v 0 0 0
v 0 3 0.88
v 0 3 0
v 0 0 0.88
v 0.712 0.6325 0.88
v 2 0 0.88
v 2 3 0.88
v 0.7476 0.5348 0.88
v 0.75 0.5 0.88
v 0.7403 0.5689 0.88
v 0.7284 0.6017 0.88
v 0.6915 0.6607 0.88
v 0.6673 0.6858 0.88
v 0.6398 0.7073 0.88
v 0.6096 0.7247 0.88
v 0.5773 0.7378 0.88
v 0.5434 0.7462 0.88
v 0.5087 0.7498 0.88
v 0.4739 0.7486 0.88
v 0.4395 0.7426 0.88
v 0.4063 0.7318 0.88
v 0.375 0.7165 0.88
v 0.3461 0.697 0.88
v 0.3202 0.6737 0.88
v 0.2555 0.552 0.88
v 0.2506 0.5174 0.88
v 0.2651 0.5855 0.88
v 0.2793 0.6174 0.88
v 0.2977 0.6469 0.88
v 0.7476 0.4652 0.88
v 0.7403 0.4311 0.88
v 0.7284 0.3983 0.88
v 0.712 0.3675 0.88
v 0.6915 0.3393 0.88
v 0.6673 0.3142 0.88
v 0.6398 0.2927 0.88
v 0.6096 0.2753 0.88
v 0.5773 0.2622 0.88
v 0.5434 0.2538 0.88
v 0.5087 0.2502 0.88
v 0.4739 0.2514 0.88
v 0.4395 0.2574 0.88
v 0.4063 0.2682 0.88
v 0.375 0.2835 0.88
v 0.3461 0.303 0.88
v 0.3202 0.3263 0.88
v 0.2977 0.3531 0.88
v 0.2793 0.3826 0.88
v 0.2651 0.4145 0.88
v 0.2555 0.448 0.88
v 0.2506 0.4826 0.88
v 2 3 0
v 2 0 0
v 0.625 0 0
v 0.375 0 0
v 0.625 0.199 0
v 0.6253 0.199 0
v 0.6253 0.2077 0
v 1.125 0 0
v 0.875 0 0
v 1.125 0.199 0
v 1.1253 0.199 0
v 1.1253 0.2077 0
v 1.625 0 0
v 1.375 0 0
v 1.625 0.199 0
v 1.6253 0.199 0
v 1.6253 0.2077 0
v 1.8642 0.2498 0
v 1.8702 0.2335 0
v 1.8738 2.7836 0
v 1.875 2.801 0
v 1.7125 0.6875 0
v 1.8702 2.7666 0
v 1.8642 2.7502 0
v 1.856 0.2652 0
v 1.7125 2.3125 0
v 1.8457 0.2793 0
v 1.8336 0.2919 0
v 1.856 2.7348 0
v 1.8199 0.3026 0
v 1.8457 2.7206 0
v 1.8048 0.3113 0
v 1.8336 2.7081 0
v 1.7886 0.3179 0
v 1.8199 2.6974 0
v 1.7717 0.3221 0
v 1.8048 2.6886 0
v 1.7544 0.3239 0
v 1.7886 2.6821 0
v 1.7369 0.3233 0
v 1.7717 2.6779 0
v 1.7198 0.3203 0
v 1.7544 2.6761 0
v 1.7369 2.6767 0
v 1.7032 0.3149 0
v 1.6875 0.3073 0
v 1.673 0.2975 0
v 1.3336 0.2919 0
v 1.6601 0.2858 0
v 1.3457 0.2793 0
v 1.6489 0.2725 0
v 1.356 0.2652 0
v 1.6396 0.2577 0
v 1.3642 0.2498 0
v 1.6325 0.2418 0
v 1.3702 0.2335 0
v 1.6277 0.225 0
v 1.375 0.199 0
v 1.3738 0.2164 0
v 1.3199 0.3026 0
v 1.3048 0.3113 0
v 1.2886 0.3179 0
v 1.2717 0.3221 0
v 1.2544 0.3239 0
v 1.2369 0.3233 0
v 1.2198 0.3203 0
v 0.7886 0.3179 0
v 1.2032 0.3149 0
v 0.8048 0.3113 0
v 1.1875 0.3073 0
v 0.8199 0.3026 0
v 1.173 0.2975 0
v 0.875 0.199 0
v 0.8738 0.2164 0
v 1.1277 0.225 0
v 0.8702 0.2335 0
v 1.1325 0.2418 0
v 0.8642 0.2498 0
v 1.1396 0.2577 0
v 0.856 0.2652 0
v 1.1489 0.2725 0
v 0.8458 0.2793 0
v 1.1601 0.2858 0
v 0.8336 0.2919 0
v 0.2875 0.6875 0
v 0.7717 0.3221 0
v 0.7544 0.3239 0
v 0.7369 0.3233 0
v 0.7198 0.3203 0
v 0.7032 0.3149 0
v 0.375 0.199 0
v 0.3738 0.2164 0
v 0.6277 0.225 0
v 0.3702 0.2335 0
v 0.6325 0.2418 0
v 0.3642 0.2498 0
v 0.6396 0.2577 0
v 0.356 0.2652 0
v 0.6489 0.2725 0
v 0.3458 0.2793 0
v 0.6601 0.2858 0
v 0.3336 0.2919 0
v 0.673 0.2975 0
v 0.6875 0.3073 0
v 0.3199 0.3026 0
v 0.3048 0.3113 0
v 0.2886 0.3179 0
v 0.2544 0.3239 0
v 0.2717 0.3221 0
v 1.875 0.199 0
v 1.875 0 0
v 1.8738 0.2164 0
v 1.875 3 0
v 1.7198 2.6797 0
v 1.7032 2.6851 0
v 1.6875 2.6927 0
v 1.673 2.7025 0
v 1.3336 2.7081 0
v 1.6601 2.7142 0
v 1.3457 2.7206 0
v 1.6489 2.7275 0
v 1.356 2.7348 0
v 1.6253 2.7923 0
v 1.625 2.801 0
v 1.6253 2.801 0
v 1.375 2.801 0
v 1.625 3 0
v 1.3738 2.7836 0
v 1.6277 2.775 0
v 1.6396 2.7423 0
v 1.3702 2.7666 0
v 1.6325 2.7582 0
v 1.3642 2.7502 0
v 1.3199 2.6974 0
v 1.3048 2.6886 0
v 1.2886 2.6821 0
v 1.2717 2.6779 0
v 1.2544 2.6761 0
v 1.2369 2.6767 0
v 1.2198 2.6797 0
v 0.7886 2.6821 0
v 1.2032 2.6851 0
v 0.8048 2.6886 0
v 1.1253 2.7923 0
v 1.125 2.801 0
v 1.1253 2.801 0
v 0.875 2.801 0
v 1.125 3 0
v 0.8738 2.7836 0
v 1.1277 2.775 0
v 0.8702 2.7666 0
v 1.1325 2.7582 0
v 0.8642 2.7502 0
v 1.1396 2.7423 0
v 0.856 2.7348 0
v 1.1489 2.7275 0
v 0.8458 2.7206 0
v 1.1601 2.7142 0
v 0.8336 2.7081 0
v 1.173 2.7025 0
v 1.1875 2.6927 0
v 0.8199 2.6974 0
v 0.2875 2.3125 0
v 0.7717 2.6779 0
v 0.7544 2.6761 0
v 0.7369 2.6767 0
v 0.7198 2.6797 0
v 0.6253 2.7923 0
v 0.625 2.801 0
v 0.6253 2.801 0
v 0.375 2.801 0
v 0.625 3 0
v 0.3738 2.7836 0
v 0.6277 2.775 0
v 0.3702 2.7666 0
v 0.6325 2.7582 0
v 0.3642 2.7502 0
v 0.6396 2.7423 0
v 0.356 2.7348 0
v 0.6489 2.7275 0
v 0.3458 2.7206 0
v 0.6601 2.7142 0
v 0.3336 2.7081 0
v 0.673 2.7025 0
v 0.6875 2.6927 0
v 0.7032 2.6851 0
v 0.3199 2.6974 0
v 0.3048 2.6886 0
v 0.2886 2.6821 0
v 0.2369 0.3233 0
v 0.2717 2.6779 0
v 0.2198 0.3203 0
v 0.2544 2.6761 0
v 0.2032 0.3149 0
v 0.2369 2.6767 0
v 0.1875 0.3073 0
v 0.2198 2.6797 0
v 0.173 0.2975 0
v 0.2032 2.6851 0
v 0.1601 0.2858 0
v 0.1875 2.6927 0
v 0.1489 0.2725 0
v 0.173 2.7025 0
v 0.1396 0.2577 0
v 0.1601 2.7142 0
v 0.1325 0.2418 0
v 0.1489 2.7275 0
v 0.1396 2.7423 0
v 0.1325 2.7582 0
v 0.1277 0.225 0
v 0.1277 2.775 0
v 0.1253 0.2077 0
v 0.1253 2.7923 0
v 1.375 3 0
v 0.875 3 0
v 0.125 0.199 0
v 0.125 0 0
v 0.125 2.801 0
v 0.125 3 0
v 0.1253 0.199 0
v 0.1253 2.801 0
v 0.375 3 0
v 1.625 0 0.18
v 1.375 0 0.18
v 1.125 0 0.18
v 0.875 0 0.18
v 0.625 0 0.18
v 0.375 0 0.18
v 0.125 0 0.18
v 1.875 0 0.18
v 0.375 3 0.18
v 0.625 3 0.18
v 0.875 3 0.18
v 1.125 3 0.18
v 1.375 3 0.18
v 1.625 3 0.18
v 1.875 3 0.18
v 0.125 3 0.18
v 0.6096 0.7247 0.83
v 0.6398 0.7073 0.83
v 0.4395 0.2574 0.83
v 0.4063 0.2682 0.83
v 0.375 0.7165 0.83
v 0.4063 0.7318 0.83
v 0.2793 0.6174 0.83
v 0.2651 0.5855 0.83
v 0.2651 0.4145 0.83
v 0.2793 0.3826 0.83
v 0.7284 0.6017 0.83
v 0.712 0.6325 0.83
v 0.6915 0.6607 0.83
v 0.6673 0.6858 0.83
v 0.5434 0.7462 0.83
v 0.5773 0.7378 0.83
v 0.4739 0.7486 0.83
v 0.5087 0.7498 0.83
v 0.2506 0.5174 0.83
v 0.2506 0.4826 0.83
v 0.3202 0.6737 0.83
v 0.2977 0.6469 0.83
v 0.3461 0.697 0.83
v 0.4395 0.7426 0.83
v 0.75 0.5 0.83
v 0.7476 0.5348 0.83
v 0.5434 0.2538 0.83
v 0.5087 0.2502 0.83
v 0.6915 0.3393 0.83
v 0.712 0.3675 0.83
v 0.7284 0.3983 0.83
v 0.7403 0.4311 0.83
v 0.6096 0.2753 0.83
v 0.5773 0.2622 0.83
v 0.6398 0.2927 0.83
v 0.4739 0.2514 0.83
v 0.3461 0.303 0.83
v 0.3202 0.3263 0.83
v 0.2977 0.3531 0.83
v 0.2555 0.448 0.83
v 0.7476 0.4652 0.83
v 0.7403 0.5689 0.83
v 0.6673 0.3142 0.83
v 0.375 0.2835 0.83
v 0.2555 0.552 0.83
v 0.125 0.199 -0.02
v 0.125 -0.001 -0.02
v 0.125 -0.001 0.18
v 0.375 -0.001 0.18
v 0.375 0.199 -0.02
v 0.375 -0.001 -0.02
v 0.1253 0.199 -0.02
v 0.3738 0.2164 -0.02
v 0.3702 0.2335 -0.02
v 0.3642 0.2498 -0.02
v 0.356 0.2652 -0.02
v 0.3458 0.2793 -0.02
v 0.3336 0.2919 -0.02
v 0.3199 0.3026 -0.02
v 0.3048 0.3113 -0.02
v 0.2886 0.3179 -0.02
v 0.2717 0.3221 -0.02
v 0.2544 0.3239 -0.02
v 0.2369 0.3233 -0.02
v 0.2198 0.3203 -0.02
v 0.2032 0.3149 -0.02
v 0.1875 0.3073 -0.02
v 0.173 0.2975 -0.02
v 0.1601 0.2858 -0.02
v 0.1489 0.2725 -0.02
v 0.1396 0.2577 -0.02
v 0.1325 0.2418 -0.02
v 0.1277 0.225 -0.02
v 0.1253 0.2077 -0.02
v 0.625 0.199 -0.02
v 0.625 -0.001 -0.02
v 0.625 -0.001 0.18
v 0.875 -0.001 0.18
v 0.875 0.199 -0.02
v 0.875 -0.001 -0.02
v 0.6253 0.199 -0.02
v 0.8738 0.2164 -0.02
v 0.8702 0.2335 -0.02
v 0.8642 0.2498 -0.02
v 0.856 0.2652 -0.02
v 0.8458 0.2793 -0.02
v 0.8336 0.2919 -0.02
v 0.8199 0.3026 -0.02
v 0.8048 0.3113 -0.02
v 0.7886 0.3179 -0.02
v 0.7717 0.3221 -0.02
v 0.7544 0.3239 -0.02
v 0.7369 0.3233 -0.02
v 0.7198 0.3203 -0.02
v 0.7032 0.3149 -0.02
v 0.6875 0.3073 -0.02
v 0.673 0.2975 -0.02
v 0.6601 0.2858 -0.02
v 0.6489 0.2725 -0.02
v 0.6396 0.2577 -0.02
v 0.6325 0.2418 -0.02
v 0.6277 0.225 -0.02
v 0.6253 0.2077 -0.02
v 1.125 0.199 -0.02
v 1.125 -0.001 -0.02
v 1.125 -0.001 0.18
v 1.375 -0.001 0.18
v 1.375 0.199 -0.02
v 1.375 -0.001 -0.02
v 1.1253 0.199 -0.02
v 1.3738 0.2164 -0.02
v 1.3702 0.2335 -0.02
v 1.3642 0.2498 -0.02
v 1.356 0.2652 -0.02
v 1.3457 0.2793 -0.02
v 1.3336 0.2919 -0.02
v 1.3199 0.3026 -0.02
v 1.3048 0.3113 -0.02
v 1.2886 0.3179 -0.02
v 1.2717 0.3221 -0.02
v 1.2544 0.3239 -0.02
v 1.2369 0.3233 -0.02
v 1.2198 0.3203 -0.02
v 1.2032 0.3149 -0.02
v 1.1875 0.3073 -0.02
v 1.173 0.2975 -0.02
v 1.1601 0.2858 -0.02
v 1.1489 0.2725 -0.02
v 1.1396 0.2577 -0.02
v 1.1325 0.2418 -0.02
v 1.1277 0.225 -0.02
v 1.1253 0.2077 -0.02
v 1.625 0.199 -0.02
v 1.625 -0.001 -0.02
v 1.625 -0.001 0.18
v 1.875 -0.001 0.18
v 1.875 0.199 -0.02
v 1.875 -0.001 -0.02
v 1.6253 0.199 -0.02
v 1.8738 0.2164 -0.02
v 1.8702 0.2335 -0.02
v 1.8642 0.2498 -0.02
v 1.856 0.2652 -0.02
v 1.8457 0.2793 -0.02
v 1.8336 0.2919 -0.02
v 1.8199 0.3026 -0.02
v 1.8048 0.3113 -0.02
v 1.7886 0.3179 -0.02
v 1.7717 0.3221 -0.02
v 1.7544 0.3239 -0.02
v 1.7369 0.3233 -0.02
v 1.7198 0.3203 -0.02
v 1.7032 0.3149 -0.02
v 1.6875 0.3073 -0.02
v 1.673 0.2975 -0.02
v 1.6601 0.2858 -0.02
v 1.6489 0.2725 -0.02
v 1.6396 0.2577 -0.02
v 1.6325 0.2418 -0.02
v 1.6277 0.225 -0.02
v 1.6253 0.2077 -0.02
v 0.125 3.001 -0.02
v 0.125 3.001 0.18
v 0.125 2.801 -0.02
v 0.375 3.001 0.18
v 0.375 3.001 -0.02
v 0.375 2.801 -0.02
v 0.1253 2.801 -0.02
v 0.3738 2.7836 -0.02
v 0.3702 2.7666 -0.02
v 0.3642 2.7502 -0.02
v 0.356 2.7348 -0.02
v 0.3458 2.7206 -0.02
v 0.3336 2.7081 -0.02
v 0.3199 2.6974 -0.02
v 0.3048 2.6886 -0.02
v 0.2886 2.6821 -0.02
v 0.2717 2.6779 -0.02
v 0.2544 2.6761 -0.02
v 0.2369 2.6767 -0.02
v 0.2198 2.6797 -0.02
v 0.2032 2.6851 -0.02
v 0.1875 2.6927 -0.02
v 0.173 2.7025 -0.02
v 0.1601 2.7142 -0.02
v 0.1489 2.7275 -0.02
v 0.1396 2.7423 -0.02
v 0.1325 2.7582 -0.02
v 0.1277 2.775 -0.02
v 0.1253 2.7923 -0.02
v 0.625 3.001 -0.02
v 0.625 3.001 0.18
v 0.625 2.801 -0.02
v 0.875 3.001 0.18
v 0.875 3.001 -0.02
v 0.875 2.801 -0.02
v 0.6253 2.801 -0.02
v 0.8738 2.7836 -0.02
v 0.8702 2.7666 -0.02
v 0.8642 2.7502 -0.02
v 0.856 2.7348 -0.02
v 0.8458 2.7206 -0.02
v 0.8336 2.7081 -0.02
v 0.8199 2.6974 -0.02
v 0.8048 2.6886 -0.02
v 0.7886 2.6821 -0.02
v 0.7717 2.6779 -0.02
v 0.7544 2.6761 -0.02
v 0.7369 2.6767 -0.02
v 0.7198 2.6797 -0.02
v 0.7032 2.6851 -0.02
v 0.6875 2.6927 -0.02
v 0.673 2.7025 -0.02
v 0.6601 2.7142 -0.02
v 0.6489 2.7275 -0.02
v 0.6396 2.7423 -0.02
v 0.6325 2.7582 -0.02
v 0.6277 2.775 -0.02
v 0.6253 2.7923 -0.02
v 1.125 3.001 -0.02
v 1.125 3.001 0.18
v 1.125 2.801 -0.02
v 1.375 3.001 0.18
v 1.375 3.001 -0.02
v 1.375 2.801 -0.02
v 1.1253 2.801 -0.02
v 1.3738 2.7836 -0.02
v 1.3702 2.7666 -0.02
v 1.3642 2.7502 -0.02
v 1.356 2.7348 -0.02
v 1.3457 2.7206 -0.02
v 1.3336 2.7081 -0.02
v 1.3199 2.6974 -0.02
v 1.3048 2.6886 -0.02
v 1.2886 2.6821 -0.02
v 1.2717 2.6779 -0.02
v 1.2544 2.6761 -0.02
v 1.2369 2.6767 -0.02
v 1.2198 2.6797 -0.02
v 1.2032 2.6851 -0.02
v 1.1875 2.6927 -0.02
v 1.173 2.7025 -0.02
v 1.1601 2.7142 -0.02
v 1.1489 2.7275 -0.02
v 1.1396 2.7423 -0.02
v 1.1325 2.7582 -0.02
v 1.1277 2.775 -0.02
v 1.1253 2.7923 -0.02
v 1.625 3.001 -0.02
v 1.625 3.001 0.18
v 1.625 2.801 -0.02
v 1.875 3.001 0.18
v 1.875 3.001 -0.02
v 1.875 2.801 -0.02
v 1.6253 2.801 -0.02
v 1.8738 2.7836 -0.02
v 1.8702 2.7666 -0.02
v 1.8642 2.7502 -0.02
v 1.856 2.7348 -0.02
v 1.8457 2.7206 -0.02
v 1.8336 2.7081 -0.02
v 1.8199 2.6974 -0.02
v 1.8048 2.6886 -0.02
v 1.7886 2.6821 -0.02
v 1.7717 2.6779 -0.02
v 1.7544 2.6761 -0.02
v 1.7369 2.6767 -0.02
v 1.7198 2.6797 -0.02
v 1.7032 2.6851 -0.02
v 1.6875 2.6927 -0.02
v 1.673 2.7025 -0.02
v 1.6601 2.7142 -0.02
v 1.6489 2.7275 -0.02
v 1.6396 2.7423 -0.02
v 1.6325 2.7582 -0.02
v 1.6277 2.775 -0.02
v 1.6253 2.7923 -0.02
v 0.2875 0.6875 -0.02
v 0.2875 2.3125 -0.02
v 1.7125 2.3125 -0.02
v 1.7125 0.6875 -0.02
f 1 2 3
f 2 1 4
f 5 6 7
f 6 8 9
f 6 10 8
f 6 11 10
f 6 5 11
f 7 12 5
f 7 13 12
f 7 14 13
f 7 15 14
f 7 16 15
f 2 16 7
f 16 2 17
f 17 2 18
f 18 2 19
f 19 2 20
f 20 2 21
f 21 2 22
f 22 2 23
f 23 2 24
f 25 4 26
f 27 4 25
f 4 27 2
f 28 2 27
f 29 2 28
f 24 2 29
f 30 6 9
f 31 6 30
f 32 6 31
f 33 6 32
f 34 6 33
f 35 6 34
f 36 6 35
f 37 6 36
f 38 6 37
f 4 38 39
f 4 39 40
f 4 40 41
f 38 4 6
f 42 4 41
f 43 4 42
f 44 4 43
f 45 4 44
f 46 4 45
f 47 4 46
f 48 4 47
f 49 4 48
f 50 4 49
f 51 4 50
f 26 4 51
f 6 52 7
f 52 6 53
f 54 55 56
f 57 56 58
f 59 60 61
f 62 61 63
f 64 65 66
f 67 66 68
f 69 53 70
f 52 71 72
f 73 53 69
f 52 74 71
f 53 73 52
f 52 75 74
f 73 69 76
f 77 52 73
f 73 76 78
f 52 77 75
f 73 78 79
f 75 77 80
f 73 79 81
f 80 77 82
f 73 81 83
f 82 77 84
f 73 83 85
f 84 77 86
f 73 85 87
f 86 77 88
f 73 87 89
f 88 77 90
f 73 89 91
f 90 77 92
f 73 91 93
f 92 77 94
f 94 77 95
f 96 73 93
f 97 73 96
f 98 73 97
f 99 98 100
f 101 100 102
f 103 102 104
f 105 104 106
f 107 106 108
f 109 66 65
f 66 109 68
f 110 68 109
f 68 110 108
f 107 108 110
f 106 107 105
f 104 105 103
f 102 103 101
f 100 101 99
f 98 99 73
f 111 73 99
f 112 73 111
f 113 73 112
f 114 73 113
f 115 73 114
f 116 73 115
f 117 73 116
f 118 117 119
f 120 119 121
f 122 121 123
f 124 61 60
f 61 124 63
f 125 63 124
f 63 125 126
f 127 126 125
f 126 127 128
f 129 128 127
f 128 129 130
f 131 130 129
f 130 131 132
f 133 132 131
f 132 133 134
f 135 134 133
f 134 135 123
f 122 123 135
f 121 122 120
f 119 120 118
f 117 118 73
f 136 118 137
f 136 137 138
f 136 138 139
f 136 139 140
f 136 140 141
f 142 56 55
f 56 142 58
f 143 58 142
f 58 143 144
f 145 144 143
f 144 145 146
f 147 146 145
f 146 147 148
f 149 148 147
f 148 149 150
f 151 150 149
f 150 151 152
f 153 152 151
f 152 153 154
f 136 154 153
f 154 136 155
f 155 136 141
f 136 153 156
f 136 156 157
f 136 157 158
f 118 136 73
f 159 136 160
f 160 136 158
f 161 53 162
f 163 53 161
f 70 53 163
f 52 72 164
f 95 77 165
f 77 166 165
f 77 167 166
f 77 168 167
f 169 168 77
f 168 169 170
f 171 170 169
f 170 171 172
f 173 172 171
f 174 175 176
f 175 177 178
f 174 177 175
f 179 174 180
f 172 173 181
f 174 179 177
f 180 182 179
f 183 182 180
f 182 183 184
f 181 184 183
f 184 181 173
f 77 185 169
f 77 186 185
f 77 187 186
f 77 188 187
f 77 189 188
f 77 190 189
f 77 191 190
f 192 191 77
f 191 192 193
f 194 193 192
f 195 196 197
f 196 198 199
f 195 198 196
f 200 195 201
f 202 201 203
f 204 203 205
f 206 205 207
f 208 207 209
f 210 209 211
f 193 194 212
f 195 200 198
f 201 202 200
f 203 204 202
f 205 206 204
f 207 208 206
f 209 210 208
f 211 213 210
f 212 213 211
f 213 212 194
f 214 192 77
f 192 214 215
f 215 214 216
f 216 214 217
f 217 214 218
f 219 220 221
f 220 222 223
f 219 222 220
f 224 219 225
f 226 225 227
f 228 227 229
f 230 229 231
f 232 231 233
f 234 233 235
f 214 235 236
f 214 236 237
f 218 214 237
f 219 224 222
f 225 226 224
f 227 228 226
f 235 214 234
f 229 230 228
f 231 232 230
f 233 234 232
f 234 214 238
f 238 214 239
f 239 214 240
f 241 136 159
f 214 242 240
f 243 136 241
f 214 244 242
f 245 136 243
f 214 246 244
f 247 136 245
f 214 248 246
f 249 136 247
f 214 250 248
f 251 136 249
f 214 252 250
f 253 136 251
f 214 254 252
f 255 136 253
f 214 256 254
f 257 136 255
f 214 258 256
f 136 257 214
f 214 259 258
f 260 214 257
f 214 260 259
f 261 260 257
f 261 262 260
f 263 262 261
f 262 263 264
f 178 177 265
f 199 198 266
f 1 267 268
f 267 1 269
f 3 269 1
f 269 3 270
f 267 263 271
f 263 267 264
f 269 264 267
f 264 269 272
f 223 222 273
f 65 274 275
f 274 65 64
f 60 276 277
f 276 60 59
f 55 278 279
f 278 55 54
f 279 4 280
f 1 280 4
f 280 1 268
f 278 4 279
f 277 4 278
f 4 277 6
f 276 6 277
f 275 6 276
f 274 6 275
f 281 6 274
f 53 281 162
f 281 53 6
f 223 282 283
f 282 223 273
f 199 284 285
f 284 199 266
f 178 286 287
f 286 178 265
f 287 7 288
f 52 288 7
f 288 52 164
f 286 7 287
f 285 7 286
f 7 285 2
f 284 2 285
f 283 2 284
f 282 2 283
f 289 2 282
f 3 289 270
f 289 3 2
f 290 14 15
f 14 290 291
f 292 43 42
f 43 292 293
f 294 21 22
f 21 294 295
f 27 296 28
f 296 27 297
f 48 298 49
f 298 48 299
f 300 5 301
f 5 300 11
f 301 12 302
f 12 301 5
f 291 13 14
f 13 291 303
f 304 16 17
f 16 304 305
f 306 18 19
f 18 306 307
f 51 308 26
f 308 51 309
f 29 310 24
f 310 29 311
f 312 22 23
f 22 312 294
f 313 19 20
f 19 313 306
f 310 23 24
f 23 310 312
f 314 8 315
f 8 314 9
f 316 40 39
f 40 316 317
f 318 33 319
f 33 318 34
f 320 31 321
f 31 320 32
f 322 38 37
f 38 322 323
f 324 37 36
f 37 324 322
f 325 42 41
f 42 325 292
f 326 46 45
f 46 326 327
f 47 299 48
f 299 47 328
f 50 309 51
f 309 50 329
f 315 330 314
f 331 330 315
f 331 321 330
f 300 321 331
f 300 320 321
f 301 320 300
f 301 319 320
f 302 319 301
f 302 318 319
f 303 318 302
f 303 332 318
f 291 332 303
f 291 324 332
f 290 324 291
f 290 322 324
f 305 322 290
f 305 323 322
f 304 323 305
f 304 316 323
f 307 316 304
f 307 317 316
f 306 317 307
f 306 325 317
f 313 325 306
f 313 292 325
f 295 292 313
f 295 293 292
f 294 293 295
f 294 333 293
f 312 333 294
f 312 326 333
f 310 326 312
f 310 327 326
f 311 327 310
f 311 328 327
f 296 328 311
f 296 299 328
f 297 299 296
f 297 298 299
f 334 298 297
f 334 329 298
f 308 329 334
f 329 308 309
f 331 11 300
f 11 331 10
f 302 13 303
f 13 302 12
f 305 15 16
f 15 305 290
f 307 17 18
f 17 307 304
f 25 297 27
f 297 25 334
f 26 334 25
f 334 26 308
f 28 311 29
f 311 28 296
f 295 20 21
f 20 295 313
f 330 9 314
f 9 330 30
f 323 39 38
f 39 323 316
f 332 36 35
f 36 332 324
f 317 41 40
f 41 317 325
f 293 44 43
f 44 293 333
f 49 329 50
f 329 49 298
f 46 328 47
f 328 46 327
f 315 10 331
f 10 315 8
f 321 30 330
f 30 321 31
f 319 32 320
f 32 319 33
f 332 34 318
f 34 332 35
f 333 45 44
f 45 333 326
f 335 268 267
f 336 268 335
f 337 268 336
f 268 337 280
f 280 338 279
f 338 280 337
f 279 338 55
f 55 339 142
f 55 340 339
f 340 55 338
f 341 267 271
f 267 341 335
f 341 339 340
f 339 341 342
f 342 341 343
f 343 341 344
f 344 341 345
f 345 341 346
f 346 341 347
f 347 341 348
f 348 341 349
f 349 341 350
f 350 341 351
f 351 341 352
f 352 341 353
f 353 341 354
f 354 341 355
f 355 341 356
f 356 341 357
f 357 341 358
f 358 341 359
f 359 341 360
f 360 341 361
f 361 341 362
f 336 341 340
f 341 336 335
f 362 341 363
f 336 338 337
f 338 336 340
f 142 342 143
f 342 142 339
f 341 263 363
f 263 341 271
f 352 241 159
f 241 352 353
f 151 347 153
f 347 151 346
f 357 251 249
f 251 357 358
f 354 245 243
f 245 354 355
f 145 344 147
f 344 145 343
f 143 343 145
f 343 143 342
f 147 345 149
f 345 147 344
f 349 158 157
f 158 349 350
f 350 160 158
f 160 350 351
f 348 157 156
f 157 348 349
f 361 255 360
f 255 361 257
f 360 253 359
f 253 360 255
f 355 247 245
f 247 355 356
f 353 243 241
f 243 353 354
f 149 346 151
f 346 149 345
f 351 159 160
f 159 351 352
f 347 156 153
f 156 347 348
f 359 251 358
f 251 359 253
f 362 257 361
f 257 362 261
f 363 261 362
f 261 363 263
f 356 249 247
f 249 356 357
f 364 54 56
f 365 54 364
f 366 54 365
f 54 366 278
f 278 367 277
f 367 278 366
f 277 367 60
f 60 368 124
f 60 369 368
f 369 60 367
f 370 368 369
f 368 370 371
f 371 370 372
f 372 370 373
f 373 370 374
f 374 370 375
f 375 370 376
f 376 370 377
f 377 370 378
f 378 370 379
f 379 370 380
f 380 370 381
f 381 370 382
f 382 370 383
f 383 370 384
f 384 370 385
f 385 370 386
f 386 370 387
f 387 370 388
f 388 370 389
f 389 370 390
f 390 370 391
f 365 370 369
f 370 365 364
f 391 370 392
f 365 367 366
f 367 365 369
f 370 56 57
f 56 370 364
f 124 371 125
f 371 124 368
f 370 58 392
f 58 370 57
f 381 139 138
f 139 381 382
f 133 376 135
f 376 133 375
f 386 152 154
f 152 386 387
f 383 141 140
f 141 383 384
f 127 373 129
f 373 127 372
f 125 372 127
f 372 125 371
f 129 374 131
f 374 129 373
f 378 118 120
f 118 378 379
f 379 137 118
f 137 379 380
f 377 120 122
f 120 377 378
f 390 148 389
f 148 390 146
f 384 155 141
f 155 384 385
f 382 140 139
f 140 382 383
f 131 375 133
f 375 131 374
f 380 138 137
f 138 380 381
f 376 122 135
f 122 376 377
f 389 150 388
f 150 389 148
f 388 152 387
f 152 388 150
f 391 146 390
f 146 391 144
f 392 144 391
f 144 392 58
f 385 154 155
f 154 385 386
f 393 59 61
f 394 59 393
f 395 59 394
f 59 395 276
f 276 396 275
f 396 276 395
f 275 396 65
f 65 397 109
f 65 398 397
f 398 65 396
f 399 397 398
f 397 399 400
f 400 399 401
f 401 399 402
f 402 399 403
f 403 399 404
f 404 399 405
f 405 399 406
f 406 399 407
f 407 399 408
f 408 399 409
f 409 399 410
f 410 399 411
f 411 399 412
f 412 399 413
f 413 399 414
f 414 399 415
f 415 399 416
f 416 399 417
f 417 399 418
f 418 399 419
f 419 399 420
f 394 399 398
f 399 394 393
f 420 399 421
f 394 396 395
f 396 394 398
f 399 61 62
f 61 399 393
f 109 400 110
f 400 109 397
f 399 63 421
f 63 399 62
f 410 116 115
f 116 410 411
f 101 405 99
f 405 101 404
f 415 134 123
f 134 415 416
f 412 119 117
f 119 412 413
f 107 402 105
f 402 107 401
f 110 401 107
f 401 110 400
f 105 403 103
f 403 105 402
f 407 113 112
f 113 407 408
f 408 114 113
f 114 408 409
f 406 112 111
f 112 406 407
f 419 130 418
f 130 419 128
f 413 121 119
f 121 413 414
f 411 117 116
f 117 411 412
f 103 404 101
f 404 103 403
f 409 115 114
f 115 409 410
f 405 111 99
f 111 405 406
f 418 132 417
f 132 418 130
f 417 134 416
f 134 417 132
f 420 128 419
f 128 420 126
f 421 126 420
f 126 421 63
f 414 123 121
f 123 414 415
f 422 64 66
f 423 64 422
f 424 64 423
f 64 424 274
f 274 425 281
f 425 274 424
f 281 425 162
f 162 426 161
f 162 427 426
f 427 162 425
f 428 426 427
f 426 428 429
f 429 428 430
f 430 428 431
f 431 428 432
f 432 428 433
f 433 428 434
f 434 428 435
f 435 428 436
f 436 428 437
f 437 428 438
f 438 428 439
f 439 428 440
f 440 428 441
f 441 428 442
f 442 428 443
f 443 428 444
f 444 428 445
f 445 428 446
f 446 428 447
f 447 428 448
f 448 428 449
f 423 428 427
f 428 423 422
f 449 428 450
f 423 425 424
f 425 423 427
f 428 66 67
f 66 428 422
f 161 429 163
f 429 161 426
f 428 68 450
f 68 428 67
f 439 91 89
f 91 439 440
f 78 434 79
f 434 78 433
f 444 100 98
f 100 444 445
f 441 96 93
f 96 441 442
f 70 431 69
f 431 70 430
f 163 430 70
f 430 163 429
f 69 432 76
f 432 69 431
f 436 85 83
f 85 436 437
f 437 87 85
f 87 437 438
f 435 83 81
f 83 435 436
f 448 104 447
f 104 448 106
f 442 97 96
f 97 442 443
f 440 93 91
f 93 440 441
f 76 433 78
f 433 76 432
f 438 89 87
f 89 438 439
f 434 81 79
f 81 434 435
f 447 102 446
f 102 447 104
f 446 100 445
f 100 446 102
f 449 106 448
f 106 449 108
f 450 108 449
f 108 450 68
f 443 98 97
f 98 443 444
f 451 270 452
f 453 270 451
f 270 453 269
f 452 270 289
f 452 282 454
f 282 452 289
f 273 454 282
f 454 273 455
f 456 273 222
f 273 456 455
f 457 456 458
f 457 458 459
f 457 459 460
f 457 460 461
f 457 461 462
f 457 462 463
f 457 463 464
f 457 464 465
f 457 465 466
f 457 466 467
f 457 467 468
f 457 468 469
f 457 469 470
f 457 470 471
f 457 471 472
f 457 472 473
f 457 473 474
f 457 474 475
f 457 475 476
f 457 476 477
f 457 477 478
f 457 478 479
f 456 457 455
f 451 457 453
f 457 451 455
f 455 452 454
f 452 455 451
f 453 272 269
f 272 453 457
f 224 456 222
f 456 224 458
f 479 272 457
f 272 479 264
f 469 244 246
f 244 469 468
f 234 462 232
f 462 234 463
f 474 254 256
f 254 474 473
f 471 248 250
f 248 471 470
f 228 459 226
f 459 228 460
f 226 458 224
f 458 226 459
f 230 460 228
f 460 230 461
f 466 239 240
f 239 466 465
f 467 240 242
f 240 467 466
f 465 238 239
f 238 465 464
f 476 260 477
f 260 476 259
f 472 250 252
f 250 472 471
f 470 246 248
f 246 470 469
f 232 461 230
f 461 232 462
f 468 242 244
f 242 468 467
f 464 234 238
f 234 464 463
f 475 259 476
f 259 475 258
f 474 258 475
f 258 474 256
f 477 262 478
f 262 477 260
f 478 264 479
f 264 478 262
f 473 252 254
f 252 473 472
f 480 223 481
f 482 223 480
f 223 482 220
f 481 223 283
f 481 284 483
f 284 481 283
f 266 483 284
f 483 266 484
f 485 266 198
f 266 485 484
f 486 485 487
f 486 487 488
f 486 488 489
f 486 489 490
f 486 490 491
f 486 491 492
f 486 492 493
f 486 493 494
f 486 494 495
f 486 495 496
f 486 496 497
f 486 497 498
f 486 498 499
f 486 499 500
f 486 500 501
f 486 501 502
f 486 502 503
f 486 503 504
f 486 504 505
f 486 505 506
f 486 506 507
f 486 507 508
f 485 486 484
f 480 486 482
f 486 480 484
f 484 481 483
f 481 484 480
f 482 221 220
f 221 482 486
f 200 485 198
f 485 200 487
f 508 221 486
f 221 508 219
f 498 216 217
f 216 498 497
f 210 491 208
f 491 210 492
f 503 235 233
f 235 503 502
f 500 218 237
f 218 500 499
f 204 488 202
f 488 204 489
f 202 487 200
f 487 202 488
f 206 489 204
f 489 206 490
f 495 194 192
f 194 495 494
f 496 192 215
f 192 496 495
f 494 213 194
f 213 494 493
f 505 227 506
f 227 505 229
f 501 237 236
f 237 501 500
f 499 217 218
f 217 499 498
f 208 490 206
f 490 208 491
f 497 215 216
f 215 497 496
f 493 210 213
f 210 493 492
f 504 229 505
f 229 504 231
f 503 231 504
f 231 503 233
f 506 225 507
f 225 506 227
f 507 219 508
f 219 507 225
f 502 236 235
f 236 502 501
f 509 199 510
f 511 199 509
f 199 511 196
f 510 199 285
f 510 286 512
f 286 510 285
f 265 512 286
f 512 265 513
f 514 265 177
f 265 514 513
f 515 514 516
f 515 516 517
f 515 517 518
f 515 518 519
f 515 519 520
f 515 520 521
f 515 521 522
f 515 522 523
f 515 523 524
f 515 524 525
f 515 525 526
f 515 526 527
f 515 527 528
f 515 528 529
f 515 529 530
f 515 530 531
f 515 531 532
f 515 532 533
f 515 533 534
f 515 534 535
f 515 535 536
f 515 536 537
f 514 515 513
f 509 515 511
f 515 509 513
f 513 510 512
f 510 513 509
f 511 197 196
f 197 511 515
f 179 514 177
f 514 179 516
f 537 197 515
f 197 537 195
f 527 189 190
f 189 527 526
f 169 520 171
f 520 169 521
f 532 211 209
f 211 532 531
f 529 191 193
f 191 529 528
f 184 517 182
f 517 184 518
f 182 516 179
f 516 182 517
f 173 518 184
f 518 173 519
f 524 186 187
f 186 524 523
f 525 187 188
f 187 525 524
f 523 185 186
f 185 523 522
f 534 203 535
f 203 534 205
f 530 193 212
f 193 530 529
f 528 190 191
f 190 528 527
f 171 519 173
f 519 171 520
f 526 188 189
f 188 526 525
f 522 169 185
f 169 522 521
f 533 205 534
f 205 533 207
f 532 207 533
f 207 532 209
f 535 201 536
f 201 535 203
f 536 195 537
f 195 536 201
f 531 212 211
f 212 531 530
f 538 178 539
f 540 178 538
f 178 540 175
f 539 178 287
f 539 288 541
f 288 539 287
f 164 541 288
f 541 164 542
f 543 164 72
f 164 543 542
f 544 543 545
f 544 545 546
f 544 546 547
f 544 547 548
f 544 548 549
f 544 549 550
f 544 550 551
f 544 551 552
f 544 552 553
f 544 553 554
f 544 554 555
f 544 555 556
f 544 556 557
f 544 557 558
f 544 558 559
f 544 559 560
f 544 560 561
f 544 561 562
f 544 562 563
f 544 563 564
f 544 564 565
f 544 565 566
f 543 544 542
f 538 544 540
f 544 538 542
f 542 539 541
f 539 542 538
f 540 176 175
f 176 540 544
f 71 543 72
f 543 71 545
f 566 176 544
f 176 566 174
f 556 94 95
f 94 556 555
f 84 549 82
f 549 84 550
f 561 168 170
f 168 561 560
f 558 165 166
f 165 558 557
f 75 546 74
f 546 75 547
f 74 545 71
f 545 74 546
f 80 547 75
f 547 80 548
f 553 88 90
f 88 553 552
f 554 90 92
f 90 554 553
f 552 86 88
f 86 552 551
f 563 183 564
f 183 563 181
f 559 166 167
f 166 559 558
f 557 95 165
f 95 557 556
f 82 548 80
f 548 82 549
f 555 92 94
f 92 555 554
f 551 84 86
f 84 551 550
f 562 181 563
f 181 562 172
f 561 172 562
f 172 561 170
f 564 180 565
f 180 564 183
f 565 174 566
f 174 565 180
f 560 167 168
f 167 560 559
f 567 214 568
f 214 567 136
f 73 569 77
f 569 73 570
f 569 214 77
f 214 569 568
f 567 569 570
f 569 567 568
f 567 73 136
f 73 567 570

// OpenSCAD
$fn = 45;
color([0.3, 0.3, 0.3])
difference(){
    cube([2, 3, 0.88]);
    translate([0.5, 0.5, 0.83])
    cylinder(d = 0.5, h = 0.05);
}

color("silver")
translate([0.2875, 0.6875, -0.02])
cube([1.425, 1.625, 0.02]);

set();
translate([0, 3, 0])
mirror([0, 1, 0])
set();

module set(){
    lead();
    translate([0.5, 0, 0])
    lead();
    translate([1, 0, 0])
    lead();
    translate([1.5, 0, 0])
    lead();
}
module lead(){
    color("silver")
    translate([0.125, -0.001, -0.02])
    cube([0.25, 0.2, 0.2]);
    color("silver")
    translate([0.25, 0.199, -0.02])
    cylinder(d = 0.25, h = 0.2);
}
